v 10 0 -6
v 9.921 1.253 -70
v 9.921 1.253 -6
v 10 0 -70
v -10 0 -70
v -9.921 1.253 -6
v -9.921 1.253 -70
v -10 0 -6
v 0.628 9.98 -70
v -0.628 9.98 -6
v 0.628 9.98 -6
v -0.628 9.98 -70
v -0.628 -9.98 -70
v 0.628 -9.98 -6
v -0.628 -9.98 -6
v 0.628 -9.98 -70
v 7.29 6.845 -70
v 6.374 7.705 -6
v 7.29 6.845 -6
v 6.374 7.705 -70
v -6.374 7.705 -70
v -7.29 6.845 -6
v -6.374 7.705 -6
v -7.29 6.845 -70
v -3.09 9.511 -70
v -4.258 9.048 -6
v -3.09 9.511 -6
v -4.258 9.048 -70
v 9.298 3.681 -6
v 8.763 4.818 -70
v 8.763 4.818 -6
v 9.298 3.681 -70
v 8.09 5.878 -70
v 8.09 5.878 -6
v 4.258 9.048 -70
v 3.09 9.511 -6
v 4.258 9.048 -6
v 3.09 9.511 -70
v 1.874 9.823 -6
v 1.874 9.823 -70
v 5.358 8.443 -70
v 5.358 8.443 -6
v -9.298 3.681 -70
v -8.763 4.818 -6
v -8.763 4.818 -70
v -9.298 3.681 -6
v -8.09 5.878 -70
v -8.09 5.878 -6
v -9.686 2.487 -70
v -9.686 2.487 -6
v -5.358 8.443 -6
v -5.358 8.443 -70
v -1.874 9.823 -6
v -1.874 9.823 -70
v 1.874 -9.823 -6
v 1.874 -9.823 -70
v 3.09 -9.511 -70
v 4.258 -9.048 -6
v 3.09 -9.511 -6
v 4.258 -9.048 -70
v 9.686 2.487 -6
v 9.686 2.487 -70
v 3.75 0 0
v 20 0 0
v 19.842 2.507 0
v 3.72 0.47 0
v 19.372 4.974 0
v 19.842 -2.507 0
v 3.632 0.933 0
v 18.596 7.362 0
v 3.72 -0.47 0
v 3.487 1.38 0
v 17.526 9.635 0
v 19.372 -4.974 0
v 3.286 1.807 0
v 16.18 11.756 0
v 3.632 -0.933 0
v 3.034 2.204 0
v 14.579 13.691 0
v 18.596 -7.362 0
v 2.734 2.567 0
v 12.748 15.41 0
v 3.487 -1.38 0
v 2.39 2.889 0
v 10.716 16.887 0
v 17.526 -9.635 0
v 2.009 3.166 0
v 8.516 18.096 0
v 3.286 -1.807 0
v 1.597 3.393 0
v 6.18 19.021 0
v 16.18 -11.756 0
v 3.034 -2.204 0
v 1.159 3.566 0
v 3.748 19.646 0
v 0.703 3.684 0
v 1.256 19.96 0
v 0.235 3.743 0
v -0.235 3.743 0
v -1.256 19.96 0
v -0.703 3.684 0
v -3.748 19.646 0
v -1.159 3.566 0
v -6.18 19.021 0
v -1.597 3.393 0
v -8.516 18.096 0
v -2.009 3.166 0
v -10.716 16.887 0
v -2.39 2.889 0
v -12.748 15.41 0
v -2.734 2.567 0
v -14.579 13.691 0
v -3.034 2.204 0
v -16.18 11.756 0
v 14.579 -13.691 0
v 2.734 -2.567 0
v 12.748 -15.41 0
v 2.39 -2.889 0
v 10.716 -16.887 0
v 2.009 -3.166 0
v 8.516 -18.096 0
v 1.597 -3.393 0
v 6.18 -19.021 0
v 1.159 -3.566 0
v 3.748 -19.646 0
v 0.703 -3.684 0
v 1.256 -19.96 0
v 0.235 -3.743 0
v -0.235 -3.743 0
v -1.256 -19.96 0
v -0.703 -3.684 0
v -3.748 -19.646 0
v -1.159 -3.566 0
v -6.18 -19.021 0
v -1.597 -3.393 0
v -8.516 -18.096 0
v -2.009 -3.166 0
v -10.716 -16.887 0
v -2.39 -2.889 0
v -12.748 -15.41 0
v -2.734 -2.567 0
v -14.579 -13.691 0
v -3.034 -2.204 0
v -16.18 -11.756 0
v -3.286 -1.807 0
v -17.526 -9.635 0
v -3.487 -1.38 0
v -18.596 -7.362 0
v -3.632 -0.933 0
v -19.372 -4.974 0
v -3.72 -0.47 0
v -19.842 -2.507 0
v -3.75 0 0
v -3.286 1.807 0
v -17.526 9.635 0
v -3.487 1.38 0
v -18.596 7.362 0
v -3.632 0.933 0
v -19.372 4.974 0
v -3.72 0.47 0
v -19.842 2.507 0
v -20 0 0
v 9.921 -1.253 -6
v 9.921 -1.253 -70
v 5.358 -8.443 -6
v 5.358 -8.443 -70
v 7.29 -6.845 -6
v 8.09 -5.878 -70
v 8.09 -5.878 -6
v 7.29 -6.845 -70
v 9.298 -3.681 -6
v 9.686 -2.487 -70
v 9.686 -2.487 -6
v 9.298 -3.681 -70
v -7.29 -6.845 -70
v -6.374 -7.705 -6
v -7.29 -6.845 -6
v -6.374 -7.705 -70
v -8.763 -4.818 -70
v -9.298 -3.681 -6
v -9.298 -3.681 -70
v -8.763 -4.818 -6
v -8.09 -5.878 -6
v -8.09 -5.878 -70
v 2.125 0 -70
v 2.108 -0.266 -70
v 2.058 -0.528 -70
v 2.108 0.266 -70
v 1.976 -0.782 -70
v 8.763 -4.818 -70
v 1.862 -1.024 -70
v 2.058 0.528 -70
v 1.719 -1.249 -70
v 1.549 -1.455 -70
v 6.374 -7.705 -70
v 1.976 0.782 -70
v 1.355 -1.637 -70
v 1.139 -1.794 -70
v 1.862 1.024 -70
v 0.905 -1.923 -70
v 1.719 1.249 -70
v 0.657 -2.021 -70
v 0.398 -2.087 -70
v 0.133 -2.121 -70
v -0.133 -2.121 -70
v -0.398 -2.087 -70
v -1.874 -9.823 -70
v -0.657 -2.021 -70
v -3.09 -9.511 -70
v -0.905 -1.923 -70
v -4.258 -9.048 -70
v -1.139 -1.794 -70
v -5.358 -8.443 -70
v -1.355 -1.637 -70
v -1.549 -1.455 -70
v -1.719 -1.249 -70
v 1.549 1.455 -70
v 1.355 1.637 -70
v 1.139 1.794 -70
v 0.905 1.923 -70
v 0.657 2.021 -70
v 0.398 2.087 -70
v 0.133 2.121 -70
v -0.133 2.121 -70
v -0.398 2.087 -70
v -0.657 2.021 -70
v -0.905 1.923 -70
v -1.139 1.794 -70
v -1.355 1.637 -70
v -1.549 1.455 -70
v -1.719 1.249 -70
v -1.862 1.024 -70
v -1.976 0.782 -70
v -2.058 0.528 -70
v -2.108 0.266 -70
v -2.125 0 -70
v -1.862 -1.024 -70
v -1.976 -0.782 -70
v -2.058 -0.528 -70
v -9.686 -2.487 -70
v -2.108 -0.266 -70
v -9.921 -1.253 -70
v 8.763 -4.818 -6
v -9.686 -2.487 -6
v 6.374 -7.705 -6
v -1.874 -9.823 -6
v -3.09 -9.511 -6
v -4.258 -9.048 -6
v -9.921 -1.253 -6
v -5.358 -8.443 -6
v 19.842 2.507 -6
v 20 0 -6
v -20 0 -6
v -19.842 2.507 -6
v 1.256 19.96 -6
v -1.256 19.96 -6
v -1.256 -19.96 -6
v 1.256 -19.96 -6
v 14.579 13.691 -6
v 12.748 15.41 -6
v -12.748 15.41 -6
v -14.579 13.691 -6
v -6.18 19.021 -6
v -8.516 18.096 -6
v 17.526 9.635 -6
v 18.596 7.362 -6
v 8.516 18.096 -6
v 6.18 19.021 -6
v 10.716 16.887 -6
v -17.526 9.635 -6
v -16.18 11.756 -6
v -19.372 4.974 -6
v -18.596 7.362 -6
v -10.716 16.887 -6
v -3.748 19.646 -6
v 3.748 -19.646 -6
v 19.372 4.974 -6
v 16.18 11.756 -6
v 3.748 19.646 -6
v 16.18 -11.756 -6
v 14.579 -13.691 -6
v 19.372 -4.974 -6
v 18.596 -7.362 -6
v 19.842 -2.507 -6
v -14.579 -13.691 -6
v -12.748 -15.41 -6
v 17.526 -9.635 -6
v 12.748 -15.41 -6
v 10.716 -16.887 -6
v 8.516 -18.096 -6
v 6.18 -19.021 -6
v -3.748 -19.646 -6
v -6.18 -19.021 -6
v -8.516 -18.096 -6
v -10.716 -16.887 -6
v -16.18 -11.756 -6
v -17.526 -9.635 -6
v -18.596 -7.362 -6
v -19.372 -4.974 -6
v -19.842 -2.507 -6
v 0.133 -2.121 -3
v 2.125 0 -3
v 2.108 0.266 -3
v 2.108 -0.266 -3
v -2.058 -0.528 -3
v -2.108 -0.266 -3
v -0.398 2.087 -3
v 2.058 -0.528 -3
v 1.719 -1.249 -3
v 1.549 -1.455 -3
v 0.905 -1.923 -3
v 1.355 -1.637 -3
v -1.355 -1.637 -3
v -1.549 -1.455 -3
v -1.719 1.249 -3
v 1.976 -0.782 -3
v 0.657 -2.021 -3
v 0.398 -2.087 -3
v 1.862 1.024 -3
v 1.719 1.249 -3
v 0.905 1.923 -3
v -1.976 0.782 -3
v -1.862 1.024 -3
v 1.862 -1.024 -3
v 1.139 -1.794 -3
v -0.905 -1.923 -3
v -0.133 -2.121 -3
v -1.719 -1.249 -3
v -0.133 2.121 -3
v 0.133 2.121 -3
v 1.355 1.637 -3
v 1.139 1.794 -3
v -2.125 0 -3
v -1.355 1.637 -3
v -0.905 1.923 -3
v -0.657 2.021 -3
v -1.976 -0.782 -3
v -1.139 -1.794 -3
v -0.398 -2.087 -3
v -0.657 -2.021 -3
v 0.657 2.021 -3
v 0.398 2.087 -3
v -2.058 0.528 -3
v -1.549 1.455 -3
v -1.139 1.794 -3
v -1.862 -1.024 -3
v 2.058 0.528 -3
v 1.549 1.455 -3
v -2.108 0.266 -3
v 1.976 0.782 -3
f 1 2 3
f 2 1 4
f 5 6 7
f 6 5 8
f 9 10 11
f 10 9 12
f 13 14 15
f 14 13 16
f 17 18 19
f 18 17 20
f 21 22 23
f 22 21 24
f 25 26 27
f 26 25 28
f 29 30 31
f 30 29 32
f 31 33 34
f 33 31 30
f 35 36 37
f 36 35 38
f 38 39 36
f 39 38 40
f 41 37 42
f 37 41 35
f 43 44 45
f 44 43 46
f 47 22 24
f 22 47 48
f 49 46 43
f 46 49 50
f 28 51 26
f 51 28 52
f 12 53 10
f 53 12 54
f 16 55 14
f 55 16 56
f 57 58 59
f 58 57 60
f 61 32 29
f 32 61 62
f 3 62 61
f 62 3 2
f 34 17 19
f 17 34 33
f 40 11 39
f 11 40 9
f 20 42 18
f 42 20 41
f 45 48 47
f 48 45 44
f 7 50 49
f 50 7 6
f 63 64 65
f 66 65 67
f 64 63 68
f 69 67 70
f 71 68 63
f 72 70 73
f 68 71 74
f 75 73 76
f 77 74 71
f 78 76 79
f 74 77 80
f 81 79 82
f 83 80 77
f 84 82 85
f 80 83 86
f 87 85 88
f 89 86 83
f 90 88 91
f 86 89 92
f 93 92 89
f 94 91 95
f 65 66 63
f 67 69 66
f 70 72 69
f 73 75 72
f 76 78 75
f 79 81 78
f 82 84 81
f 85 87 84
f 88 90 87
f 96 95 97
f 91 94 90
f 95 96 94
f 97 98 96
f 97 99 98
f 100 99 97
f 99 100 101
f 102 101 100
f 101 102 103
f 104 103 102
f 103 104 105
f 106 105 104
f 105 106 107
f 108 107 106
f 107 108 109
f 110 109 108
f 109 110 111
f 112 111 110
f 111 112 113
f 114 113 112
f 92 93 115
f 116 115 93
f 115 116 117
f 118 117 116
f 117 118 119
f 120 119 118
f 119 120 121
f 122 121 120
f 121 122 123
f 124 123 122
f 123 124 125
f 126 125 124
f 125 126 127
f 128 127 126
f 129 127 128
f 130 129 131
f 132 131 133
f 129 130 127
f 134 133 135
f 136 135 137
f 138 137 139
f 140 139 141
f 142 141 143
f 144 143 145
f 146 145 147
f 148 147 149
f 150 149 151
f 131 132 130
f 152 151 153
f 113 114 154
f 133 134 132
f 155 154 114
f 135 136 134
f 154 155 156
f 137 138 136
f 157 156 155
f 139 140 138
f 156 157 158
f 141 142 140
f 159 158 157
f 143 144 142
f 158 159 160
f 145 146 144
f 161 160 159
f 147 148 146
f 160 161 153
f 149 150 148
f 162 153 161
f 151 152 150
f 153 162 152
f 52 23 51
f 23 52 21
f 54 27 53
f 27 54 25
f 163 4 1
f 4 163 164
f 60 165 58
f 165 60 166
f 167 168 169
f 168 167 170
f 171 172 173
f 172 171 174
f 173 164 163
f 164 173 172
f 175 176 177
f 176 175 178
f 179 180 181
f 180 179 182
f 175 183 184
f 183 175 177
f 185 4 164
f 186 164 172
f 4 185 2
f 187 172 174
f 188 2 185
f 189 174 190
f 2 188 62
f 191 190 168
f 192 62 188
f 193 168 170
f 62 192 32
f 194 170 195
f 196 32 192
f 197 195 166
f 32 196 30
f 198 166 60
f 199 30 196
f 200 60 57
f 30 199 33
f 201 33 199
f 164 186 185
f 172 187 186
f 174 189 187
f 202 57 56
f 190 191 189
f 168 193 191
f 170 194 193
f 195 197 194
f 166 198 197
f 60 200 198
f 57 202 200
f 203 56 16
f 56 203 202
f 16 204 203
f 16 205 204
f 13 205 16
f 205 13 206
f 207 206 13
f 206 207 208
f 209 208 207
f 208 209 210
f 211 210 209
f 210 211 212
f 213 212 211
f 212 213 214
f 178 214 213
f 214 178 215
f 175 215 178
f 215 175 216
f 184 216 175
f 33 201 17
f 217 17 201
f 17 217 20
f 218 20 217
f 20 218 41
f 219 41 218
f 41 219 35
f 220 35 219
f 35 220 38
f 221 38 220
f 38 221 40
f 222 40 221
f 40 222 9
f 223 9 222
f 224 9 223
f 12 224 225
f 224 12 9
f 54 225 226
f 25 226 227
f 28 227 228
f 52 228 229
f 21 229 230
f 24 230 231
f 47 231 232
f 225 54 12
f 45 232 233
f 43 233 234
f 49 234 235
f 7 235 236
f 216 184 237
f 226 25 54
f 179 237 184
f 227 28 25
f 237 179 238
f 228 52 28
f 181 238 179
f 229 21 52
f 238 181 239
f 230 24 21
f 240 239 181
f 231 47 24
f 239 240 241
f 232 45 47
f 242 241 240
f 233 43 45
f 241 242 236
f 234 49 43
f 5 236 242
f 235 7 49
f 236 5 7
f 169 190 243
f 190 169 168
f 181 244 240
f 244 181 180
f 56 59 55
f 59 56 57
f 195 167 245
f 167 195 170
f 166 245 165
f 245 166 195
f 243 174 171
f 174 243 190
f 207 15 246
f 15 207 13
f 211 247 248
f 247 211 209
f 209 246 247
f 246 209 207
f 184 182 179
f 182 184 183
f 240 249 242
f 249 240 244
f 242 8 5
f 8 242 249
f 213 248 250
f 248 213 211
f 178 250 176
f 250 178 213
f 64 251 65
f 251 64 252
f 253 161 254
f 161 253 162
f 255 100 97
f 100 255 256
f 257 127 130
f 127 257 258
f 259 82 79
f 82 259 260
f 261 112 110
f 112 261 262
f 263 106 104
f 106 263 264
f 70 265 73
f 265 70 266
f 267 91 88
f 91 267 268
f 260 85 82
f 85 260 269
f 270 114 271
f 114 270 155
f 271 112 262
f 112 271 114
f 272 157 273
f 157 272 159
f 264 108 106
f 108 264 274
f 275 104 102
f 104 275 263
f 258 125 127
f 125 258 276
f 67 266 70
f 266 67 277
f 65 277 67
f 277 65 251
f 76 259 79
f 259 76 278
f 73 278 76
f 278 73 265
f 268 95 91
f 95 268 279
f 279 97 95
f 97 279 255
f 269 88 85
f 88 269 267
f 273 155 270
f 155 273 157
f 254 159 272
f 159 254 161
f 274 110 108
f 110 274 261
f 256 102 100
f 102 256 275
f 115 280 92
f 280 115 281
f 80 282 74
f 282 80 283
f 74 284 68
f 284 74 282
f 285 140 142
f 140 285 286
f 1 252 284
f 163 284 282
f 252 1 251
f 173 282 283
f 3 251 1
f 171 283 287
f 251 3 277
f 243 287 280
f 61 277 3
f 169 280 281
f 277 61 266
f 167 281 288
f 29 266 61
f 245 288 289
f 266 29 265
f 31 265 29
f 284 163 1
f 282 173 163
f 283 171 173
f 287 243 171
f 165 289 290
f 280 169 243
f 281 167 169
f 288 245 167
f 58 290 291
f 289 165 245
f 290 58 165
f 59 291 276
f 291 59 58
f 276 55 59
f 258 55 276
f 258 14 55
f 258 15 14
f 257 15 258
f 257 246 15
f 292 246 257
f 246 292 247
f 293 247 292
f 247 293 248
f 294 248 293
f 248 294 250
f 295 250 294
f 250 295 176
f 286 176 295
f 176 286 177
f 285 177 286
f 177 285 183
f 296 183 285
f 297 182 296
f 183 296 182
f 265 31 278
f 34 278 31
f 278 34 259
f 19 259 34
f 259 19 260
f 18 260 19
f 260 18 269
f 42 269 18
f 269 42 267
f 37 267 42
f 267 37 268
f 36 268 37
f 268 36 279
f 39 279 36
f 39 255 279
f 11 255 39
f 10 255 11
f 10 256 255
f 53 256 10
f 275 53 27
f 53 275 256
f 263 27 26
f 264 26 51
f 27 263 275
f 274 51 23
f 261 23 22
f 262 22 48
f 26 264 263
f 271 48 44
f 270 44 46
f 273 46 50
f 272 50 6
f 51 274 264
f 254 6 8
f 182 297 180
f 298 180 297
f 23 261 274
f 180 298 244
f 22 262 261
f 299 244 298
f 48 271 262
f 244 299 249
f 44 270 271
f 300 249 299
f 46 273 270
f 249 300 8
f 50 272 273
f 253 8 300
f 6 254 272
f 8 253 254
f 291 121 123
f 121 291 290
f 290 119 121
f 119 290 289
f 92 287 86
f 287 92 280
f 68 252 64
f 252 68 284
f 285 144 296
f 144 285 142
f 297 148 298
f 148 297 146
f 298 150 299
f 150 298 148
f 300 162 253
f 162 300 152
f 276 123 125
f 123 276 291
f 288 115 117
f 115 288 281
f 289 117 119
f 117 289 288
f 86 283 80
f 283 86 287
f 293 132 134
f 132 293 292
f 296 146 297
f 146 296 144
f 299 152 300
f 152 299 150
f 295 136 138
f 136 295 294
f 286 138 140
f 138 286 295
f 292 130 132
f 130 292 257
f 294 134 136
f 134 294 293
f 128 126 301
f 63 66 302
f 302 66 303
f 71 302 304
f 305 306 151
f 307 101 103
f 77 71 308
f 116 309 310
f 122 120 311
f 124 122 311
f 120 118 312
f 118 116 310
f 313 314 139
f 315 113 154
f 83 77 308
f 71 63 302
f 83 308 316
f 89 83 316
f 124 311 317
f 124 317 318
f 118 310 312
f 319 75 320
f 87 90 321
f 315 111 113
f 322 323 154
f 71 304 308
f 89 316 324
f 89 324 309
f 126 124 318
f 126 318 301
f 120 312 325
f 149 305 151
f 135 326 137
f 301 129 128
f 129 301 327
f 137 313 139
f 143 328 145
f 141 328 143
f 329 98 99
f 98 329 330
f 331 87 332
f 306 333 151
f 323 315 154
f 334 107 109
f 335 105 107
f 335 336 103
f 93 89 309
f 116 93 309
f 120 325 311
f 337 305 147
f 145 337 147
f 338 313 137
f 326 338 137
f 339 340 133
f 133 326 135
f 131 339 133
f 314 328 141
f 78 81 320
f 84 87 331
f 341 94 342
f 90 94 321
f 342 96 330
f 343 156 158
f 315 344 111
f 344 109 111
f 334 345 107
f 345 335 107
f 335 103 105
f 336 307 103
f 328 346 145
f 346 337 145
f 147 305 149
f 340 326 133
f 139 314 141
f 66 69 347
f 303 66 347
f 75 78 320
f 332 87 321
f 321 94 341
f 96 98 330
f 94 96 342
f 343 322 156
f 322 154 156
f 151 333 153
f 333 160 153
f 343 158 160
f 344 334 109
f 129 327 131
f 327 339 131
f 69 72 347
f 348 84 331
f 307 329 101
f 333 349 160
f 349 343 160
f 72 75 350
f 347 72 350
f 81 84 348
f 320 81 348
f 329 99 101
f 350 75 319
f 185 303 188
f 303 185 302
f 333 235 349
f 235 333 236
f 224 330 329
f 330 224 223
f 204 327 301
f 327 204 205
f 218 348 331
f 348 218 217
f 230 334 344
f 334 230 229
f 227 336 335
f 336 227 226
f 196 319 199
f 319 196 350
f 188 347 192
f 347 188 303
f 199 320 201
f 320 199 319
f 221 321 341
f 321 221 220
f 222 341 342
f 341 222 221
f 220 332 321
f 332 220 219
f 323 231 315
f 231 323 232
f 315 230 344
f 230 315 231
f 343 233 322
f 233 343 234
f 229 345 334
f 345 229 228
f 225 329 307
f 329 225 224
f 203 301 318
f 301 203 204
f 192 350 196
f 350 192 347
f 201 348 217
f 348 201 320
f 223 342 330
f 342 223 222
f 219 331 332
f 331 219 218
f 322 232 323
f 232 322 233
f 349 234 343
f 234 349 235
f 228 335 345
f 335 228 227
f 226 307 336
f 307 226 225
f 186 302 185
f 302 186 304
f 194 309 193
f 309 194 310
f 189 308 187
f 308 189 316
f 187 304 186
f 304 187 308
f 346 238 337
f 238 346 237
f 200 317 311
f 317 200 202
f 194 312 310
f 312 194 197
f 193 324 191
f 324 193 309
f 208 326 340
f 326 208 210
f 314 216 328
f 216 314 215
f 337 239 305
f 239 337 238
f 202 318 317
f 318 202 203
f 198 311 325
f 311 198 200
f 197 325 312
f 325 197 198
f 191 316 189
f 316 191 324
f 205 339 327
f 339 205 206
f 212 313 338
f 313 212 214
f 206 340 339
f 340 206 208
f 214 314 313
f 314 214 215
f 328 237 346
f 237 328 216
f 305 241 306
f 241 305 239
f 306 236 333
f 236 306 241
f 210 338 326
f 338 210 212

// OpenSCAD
$fn = 50;


difference() {
	union() {
		translate(v = [0, 0, -70.0000000000]) {
			cylinder(h = 70, r = 10.0000000000);
		}
		translate(v = [0, 0, -6.0000000000]) {
			cylinder(h = 6, r = 20.0000000000);
		}
	}
	union() {
		translate(v = [0, 0, 0]) {
			rotate(a = [0, 0, 0]) {
				difference() {
					union() {
						#translate(v = [0, 0, -70.0000000000]) {
							cylinder(h = 70, r = 2.0000000000);
						}
						#translate(v = [0, 0, -3]) {
							cylinder(h = 3, r = 10.0000000000, r1 = 2.1250000000, r2 = 3.7500000000);
						}
						#translate(v = [0, 0, -70.0000000000]) {
							cylinder(h = 70, r = 2.1250000000);
						}
						#translate(v = [0, 0, -70.0000000000]) {
							cylinder(h = 70, r = 2.0000000000);
						}
					}
					union();
				}
			}
		}
	}
}
